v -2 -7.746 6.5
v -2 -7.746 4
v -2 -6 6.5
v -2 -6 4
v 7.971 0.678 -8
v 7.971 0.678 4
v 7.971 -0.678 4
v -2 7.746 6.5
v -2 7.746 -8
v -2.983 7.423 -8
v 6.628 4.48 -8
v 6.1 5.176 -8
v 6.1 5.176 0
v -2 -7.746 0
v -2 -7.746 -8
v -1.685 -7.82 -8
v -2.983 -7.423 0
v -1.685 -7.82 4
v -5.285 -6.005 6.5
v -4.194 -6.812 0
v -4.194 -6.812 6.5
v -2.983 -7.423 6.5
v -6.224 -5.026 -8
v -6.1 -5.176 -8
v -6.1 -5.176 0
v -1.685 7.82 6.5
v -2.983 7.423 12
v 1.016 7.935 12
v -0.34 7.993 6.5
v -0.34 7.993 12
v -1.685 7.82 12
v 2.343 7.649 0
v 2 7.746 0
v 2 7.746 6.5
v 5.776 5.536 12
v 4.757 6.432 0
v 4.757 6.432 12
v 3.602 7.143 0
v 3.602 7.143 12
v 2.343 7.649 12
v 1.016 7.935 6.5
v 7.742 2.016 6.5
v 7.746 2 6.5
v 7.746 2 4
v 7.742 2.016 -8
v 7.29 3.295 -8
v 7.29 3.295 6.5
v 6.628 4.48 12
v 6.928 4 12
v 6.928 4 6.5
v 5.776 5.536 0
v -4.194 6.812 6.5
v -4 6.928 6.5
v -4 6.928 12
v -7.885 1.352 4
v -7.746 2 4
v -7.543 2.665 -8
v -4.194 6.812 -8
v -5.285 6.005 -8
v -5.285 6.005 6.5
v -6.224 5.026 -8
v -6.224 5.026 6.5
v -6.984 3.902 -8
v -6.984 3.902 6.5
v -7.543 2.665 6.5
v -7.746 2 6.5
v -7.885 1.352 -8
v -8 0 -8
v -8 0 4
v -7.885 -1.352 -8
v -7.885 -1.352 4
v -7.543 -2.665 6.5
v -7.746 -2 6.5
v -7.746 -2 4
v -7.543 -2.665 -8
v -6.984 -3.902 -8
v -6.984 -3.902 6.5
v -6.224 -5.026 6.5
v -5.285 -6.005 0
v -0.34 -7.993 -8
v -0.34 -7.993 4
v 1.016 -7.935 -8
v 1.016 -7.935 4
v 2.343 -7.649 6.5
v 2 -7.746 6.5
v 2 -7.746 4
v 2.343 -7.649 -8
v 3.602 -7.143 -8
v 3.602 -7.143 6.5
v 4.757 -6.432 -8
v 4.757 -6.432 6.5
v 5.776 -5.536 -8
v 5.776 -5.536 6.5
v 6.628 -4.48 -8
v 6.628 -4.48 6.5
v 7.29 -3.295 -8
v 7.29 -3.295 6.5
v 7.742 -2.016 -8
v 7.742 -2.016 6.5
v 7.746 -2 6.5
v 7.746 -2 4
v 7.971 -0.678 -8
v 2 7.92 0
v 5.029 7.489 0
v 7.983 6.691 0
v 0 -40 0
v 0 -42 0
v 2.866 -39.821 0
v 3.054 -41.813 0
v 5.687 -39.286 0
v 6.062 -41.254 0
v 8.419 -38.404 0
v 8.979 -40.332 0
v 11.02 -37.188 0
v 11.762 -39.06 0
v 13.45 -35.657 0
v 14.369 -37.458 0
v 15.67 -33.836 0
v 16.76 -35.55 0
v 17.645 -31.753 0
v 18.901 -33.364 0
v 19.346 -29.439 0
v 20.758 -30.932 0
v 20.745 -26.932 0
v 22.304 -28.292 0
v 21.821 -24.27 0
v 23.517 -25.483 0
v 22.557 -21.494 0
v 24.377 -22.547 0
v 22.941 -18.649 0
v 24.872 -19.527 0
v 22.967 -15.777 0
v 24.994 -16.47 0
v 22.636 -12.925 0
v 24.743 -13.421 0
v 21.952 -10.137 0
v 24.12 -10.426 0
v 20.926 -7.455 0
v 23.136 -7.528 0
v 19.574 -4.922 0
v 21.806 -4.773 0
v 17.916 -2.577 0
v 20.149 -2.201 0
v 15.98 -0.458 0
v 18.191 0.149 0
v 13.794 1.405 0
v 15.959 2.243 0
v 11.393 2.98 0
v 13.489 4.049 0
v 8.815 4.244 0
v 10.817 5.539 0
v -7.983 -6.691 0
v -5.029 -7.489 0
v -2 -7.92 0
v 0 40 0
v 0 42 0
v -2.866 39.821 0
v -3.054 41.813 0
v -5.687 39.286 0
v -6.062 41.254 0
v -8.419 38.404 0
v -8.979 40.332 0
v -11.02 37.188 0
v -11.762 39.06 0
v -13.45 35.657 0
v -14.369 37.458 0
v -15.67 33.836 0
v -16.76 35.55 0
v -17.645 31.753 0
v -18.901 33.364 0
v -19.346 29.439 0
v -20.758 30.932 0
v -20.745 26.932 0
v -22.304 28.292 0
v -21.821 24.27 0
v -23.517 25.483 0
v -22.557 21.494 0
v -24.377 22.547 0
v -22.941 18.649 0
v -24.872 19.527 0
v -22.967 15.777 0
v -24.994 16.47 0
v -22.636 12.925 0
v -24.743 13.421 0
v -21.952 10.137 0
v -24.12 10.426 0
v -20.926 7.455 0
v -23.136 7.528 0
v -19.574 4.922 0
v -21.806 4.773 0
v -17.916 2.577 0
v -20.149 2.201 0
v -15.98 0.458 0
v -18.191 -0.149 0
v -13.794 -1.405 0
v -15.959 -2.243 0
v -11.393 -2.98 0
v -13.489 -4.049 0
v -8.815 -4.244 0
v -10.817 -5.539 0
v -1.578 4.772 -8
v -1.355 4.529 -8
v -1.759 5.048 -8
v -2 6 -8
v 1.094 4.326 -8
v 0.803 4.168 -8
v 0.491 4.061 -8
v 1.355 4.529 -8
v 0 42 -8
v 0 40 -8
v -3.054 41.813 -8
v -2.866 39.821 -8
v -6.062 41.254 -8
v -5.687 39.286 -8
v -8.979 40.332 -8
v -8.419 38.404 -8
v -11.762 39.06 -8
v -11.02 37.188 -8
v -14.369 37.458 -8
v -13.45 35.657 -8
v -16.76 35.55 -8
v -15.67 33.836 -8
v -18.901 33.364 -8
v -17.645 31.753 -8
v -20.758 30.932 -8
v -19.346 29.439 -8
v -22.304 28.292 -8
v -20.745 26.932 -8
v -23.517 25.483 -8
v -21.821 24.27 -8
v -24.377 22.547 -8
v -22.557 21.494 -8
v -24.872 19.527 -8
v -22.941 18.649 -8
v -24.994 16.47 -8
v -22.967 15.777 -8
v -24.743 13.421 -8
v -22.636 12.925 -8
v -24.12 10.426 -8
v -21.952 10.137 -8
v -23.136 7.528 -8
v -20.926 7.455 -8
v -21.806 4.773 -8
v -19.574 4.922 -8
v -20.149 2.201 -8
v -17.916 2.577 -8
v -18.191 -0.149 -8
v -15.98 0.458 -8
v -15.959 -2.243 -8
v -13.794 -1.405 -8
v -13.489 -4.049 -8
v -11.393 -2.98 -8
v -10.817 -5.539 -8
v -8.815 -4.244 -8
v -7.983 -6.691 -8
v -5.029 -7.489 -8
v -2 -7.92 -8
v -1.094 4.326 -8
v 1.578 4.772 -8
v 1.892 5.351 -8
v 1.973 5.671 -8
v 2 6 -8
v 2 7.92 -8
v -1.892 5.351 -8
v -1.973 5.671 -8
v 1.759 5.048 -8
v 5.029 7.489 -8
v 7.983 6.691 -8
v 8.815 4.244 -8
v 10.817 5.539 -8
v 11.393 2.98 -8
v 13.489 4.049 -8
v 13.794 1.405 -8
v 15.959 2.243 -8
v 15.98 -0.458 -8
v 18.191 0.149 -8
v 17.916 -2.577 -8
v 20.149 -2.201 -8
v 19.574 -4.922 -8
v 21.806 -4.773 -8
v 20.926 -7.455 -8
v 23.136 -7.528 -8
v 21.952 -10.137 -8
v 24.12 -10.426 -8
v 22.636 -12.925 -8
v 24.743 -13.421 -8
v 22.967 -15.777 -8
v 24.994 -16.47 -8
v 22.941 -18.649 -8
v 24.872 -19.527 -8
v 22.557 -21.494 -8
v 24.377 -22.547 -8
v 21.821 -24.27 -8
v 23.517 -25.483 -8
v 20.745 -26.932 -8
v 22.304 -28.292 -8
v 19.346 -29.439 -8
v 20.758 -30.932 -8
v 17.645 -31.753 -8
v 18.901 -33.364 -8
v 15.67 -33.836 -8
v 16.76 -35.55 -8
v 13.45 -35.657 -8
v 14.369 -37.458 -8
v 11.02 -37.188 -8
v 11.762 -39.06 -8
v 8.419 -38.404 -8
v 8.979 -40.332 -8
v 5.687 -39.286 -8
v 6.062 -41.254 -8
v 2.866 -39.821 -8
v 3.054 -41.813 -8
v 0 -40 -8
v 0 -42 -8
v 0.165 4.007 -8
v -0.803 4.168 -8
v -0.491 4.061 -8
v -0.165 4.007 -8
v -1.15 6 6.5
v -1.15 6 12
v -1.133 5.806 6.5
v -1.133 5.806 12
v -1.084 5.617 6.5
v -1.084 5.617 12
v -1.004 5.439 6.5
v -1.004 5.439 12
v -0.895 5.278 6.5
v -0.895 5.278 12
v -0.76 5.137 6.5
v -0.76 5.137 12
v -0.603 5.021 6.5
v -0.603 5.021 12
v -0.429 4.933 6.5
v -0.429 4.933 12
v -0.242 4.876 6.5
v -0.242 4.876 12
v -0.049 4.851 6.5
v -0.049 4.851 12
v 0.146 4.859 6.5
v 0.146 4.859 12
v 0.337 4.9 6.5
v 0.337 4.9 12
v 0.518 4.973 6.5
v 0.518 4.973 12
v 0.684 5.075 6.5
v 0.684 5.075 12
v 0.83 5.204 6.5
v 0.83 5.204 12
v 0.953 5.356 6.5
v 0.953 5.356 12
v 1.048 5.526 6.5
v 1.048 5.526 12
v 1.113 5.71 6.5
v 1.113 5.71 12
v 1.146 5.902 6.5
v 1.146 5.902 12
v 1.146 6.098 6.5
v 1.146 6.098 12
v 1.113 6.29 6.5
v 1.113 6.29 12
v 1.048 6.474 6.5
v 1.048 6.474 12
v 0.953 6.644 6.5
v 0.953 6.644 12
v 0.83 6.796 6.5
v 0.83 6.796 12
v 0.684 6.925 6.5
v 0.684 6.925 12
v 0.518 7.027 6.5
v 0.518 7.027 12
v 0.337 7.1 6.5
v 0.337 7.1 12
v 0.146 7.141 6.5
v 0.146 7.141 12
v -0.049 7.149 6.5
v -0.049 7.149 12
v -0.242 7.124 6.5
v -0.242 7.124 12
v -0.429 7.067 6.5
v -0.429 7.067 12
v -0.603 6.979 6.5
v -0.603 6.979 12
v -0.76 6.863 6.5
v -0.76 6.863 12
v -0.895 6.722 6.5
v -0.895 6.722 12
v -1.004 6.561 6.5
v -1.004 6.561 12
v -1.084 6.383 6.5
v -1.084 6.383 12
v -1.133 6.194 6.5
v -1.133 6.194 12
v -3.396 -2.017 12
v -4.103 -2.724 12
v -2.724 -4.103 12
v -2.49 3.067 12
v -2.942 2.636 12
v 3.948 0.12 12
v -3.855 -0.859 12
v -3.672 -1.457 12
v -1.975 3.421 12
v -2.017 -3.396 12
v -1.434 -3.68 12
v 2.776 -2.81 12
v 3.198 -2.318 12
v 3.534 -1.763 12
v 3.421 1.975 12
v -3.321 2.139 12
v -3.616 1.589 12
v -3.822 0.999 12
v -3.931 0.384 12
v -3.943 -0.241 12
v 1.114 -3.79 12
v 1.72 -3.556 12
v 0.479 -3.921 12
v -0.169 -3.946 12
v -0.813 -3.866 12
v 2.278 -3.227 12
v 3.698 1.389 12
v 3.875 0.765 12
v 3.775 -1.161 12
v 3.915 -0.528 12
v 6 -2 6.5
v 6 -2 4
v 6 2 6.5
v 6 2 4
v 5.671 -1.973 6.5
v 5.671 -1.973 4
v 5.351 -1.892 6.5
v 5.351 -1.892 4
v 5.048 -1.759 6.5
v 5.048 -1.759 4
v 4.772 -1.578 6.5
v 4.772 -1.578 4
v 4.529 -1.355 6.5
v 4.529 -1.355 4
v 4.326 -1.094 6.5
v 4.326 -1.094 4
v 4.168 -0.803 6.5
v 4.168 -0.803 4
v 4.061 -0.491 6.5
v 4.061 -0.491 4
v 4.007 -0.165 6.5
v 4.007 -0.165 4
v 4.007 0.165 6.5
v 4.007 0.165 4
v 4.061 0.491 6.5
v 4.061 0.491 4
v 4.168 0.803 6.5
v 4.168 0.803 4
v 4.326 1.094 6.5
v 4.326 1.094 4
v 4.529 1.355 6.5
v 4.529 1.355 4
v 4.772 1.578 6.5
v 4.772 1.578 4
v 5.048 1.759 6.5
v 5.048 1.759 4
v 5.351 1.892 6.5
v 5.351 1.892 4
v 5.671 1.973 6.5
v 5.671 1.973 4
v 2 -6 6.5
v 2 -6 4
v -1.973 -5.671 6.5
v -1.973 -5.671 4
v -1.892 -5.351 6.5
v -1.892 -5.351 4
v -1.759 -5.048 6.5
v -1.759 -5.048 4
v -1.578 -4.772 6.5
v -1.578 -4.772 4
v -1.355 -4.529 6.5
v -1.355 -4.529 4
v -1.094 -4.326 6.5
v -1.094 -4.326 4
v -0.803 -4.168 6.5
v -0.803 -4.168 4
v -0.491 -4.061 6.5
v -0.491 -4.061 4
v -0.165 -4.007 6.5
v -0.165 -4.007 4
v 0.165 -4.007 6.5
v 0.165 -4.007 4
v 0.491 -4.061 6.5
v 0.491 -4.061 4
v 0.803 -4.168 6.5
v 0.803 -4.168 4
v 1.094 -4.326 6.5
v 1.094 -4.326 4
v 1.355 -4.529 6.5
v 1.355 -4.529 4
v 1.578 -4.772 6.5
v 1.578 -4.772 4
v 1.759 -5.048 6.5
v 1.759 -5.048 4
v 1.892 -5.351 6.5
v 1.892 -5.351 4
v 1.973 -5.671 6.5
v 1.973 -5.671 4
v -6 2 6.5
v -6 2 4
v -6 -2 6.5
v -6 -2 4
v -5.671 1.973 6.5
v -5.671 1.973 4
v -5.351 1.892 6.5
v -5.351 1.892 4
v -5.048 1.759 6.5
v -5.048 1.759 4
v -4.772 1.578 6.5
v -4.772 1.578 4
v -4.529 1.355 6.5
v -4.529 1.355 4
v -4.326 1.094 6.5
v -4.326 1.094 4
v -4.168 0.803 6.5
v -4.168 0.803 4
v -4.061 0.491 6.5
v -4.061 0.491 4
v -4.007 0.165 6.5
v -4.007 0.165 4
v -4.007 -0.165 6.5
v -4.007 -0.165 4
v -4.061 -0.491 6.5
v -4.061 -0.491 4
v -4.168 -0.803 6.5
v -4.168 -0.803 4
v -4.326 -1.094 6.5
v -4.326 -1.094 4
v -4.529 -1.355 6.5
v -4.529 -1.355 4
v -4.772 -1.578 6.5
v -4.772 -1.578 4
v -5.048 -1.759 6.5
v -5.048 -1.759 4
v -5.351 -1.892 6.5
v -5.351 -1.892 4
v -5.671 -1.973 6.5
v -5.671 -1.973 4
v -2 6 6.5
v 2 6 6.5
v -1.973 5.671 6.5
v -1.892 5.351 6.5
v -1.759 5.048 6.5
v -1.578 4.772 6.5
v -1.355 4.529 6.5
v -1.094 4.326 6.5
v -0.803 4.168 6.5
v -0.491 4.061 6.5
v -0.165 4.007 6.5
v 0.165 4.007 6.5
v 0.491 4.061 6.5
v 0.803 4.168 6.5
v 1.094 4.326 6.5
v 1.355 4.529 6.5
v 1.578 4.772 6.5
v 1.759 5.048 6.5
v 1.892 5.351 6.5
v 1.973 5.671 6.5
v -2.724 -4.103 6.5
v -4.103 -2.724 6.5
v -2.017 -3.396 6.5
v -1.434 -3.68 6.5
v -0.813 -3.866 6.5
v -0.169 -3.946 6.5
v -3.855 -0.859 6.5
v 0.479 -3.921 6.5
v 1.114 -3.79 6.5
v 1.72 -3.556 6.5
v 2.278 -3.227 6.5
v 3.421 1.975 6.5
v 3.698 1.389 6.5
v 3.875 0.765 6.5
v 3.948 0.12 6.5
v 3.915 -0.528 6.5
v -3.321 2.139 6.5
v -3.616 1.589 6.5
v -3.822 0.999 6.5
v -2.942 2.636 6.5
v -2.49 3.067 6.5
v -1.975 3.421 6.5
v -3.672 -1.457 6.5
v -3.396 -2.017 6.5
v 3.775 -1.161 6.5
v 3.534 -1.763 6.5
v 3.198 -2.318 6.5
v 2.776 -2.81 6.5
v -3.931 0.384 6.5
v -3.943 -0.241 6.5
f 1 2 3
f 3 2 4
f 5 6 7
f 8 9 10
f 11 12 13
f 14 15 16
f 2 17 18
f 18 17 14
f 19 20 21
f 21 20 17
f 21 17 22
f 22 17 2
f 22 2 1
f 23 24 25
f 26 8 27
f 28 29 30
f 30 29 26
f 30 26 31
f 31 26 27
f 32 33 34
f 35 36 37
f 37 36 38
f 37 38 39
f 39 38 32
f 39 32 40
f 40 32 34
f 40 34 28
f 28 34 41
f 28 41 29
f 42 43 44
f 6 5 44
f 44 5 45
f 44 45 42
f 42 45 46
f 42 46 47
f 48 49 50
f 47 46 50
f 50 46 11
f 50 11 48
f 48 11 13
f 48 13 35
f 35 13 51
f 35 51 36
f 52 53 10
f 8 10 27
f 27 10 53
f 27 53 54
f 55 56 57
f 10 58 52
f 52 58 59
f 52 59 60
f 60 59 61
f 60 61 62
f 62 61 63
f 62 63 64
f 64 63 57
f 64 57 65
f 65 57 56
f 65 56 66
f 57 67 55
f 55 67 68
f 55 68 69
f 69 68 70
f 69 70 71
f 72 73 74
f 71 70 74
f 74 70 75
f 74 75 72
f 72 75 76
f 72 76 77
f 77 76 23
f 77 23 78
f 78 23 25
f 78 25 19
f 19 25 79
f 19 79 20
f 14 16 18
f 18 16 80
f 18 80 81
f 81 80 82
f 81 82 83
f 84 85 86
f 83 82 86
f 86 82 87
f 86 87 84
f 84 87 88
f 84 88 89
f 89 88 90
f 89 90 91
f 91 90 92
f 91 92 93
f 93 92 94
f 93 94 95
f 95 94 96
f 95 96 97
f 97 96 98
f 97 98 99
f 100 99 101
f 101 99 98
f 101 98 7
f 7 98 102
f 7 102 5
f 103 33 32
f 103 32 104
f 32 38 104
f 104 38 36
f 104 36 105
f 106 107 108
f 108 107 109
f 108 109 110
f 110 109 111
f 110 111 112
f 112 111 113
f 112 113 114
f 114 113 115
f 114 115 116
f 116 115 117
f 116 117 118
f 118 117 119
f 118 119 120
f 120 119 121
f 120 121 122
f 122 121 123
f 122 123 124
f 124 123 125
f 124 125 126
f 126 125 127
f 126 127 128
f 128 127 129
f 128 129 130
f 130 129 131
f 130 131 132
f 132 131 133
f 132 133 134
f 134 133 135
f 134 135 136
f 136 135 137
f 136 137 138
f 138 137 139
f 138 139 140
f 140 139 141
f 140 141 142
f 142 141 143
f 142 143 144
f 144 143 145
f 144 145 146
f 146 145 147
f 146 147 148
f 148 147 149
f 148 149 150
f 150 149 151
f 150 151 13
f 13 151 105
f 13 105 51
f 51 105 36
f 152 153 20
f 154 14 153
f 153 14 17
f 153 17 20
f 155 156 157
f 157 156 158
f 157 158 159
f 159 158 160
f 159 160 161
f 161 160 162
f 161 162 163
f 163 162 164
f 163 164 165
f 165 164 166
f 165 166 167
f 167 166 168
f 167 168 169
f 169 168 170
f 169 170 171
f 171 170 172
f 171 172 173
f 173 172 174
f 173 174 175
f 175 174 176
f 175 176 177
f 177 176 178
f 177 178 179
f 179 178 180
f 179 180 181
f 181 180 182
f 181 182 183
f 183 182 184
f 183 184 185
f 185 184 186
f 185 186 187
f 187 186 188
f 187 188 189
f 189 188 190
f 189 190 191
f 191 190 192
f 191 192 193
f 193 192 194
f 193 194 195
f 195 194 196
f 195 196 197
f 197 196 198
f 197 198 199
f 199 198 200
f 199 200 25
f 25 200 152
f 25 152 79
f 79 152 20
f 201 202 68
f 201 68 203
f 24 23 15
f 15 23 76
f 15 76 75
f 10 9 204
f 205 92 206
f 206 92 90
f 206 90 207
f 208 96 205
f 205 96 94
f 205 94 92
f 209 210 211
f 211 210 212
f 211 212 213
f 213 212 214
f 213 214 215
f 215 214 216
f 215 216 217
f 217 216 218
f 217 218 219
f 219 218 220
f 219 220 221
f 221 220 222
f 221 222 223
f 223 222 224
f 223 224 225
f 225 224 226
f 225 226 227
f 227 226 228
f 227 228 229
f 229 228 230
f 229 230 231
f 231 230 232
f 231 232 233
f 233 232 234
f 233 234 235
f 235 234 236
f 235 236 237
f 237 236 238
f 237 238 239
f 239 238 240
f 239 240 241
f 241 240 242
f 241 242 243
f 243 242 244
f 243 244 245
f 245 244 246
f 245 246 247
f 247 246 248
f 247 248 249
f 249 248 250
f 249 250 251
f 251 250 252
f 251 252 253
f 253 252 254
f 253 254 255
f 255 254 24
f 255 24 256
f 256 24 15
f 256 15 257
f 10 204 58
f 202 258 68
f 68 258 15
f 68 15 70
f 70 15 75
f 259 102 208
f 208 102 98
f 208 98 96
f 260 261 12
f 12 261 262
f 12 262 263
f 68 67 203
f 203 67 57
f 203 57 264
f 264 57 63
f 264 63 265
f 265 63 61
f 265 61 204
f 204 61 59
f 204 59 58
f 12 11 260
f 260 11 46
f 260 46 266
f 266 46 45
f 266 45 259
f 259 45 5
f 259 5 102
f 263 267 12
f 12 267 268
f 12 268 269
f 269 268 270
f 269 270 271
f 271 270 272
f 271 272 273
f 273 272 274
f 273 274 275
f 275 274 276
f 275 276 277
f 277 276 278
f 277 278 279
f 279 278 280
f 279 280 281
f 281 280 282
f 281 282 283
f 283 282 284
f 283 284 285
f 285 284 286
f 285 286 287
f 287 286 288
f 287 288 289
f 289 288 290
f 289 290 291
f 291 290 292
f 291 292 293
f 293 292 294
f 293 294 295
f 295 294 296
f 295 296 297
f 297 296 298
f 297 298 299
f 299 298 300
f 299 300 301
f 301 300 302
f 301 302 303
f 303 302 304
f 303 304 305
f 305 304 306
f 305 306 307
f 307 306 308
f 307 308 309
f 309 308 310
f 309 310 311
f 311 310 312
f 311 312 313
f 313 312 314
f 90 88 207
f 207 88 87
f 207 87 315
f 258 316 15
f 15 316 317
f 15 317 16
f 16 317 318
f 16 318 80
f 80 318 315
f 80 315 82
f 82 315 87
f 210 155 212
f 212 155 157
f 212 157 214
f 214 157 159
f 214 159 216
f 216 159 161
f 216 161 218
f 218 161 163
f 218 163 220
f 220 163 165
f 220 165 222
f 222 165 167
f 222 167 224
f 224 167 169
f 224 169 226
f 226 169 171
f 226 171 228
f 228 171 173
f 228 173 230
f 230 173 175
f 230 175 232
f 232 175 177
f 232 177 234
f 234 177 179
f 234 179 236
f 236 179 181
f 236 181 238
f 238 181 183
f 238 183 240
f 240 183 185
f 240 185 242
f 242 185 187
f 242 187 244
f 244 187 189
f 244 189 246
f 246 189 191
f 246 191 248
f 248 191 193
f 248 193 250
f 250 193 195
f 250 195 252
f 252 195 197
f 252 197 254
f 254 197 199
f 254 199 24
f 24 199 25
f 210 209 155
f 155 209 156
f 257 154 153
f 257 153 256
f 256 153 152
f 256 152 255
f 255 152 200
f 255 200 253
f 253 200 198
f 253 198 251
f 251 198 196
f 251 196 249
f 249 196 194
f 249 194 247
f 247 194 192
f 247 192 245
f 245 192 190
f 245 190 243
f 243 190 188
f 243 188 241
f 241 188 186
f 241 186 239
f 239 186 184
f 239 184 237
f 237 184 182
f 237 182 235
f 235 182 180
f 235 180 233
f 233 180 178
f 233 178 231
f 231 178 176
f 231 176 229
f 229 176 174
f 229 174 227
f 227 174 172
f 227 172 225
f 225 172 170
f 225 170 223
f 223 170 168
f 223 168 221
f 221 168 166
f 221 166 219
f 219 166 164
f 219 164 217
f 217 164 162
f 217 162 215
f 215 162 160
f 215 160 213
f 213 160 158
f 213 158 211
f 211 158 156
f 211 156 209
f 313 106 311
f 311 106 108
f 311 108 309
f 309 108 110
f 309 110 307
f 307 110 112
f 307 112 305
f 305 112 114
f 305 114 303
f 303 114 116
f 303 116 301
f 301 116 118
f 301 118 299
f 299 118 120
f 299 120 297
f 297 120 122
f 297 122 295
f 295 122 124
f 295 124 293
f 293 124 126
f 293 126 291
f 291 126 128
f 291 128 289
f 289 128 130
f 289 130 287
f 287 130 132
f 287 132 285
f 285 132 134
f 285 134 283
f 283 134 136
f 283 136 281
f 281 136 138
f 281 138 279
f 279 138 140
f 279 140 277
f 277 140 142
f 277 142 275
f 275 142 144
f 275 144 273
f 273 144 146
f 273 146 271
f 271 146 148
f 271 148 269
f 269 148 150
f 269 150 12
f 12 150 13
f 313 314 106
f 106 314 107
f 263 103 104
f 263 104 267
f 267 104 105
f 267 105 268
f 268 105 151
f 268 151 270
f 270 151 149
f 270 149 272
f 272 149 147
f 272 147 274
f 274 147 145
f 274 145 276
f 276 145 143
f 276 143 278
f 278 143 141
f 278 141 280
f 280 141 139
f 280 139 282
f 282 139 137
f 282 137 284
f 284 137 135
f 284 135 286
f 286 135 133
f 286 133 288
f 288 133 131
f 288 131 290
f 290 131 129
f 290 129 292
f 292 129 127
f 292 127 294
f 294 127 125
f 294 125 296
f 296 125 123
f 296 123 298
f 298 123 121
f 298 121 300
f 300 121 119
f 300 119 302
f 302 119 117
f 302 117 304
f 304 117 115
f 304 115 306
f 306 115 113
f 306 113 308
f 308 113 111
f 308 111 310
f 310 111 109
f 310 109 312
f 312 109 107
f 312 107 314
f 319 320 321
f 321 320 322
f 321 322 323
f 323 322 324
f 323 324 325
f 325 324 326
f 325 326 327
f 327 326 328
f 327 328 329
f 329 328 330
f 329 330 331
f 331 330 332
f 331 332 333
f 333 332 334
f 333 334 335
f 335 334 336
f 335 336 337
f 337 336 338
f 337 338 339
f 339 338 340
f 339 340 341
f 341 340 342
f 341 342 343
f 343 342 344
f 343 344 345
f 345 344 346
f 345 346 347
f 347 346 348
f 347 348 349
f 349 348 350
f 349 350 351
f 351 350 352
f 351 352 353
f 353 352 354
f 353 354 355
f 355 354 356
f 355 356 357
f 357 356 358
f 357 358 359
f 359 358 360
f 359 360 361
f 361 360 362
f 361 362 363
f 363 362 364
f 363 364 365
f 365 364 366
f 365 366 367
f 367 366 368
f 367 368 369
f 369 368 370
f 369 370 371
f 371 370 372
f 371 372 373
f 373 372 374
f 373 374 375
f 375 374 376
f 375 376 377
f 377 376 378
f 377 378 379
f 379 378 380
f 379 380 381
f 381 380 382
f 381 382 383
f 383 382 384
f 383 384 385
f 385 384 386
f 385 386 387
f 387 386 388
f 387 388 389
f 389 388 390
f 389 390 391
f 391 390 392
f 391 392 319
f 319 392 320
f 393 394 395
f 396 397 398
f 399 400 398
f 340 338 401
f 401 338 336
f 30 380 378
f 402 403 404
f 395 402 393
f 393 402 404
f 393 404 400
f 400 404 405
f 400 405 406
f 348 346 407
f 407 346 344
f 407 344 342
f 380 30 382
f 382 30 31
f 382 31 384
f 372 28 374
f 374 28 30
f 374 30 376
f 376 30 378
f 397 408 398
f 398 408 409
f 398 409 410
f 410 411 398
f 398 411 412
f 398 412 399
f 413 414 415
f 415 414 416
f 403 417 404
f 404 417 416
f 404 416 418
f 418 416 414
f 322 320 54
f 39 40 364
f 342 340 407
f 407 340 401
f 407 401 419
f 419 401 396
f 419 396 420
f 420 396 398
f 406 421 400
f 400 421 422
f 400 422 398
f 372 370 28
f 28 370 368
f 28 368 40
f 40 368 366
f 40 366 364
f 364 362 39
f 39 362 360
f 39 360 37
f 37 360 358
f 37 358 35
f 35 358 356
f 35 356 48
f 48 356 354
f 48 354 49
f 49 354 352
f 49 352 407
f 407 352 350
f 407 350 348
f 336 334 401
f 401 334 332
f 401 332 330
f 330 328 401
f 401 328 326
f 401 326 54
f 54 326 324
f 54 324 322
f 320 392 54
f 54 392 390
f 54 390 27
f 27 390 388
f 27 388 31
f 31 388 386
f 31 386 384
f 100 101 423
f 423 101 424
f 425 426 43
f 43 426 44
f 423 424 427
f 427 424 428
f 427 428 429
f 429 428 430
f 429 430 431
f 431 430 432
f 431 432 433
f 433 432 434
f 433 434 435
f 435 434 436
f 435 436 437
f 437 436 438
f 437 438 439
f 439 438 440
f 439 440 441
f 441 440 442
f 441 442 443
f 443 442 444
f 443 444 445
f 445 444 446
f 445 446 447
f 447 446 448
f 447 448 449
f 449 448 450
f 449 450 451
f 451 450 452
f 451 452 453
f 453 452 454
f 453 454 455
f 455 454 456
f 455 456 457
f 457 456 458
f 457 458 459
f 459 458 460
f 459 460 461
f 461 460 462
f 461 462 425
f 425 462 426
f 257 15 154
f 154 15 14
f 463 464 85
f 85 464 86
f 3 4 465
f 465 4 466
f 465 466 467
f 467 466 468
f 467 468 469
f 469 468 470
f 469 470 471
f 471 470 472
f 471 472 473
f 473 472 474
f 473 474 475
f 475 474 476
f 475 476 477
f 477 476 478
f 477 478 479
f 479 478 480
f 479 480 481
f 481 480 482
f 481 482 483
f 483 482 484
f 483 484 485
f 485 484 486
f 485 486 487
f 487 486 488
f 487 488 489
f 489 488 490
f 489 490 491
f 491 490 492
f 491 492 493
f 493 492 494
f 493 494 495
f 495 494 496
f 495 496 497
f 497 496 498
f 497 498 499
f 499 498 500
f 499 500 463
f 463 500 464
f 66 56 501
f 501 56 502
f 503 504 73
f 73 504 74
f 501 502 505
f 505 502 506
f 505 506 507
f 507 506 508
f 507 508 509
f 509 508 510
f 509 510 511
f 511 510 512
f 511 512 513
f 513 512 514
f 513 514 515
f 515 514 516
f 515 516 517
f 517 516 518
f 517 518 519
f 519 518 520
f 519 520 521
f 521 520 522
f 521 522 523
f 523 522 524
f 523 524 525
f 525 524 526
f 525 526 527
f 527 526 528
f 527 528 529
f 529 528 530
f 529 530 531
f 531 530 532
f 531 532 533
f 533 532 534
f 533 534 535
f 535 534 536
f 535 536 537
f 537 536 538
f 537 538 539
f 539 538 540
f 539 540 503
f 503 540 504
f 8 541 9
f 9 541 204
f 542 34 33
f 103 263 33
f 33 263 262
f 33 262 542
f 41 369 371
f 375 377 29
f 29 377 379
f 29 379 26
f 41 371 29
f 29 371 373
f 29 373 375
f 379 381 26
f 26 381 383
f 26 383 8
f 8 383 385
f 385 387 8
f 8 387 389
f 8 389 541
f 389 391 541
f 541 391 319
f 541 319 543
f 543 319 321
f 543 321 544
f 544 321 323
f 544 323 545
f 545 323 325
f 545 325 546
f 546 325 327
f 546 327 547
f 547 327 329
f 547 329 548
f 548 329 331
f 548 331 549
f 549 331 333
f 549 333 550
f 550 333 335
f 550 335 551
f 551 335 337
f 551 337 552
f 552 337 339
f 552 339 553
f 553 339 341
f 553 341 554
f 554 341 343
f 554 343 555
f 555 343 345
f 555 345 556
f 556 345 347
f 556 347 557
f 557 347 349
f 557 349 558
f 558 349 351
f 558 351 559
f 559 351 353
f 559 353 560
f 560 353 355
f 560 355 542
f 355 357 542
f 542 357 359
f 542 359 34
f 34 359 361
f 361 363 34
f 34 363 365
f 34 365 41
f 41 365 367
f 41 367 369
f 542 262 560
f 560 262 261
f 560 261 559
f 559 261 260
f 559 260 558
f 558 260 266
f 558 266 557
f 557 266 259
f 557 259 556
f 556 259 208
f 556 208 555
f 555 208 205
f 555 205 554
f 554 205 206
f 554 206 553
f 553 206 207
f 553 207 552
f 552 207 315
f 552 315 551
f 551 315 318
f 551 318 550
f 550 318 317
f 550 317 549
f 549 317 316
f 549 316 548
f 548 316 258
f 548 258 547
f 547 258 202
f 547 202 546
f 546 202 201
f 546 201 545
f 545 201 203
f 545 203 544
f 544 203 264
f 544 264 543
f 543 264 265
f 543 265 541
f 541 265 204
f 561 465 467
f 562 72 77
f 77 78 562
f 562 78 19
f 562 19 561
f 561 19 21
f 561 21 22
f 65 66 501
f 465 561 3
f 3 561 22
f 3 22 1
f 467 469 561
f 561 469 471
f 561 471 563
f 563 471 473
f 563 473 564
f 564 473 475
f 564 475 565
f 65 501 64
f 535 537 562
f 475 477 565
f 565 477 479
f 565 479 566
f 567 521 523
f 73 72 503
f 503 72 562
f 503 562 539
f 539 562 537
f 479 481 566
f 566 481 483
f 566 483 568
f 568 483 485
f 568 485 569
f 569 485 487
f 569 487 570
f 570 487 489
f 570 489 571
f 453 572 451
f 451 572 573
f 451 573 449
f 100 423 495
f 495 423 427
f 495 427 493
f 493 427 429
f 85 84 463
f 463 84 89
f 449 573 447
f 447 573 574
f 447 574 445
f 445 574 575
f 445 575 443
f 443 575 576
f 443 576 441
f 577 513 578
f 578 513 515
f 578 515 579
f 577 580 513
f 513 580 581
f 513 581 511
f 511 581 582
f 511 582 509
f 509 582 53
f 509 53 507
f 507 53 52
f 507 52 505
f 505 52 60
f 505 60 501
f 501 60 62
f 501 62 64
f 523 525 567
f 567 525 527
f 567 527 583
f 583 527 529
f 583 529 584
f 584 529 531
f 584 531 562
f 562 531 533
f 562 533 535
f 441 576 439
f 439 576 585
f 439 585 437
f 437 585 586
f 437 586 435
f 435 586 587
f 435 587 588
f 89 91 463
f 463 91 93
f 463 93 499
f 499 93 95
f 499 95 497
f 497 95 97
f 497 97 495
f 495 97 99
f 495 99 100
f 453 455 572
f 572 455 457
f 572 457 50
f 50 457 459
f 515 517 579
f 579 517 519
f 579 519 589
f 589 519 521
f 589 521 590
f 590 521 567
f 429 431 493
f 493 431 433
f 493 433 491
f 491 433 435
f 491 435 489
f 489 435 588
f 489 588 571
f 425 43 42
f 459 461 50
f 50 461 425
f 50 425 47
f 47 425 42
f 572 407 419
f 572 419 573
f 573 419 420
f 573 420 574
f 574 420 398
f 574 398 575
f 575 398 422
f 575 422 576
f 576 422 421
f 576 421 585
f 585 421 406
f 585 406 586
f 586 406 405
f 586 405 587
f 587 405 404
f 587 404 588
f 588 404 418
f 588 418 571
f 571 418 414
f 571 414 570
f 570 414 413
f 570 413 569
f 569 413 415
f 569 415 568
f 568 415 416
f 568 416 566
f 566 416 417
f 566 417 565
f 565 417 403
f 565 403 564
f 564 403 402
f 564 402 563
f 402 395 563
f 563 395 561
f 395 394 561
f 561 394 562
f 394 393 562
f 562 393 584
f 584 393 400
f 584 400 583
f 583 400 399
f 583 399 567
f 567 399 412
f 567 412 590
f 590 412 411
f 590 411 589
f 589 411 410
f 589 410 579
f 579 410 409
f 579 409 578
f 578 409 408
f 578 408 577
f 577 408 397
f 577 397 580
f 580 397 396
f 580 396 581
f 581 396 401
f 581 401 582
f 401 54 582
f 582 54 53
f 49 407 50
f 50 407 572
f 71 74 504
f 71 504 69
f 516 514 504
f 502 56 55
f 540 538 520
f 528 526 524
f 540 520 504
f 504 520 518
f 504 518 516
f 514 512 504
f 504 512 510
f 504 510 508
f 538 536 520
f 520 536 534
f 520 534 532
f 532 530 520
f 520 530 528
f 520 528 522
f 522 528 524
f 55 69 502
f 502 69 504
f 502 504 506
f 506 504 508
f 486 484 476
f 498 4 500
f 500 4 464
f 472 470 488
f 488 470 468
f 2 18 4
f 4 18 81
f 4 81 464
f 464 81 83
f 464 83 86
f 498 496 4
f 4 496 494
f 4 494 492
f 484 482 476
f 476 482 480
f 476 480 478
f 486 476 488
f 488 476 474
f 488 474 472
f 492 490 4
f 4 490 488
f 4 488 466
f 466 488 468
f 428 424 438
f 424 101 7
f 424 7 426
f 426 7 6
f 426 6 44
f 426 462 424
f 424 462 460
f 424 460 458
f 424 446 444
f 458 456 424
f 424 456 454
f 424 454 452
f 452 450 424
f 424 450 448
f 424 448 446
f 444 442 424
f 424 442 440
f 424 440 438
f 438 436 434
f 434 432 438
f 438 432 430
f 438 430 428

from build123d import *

# Parameters (mm, degrees)
LEG_SKETCH_R      = 1.15
LEG_DEPTH         = 8
HUB_SKETCH_R      = 8
HUB_SKETCH_R_2    = 1.15
HUB_DEPTH         = 12
CLEARANCE_DEPTH   = 14.5
HUB_CUTOUT_DEPTH  = 5.5
COVER_BOLTS_DEPTH = 12


with BuildPart() as part:
    # Leg-Sketch → Leg (new body)
    with BuildSketch(Plane.XY):
        with BuildLine():
            Line((0, -42), (0, -40))
            ThreePointArc((0, -40), (22.793187837, -20.077432085), (6.099520657, 5.176470588))
            ThreePointArc((6.099520657, 5.176470588), (7.259881704, -3.360672202), (0, -8))
            ThreePointArc((0, -8), (-25, 17), (0, 42))
            Line((0, 42), (0, 40))
            ThreePointArc((0, 40), (-22.793187837, 20.077432085), (-6.099520657, -5.176470588))
            ThreePointArc((-6.099520657, -5.176470588), (-7.259881704, 3.360672202), (0, 8))
            ThreePointArc((0, 8), (25, -17), (0, -42))
        make_face()
        with Locations((0, 6)):
            Circle(LEG_SKETCH_R, mode=Mode.SUBTRACT)
        with Locations((-6, 0)):
            Circle(LEG_SKETCH_R, mode=Mode.SUBTRACT)
        with Locations((0, -6)):
            Circle(LEG_SKETCH_R, mode=Mode.SUBTRACT)
        with Locations((6, 0)):
            Circle(LEG_SKETCH_R, mode=Mode.SUBTRACT)
    extrude(amount=LEG_DEPTH)

    # Hub-Sketch → Hub (add)
    with BuildSketch(Plane(origin=(0, 0, 0), x_dir=(-1, 0, 0), z_dir=(0, 0, -1))):
        Circle(HUB_SKETCH_R)
        with Locations((0, 6)):
            Circle(HUB_SKETCH_R_2, mode=Mode.SUBTRACT)
        with Locations((-6, 0)):
            Circle(HUB_SKETCH_R_2, mode=Mode.SUBTRACT)
        with Locations((0, -6)):
            Circle(HUB_SKETCH_R_2, mode=Mode.SUBTRACT)
        with Locations((6, 0)):
            Circle(HUB_SKETCH_R_2, mode=Mode.SUBTRACT)
    extrude(amount=HUB_DEPTH)

    # Clearance-Sketch → Clearance (cut)
    with BuildSketch(Plane.XY.offset(8)):
        with BuildLine():
            Line((6, 2), (8, 2))
            Line((8, 2), (8, -2))
            Line((8, -2), (6, -2))
            ThreePointArc((6, -2), (4, 0), (6, 2))
        make_face()
        with BuildLine():
            Line((2, -6), (2, -8))
            Line((2, -8), (-2, -8))
            Line((-2, -8), (-2, -6))
            ThreePointArc((-2, -6), (0, -4), (2, -6))
        make_face()
        with BuildLine():
            Line((-6, -2), (-8, -2))
            Line((-8, -2), (-8, 2))
            Line((-8, 2), (-6, 2))
            ThreePointArc((-6, 2), (-4, 0), (-6, -2))
        make_face()
        with BuildLine():
            Line((-2, 6), (-2, 8))
            Line((-2, 8), (2, 8))
            Line((2, 8), (2, 6))
            ThreePointArc((2, 6), (0, 4), (-2, 6))
        make_face()
    extrude(amount=-CLEARANCE_DEPTH, mode=Mode.SUBTRACT)

    # Hub-Cutout-Sketch → Hub-Cutout (cut)
    with BuildSketch(Plane(origin=(0, 0, -12), x_dir=(-1, 0, 0), z_dir=(0, 0, -1))):
        with BuildLine():
            Line((-3.420800345, 1.975), (-6.92820323, 4))
            ThreePointArc((-6.92820323, 4), (2.070552361, -7.72740661), (4, 6.92820323))
            Line((4, 6.92820323), (1.975, 3.420800345))
            ThreePointArc((1.975, 3.420800345), (3.821665179, 0.998686766), (3.396076023, -2.017217799))
            Line((3.396076023, -2.017217799), (4.103182804, -2.72432458))
            Line((4.103182804, -2.72432458), (2.72432458, -4.103182804))
            Line((2.72432458, -4.103182804), (2.017217799, -3.396076023))
            ThreePointArc((2.017217799, -3.396076023), (-2.775720699, -2.810315747), (-3.420800345, 1.975))
        make_face()
    extrude(amount=-HUB_CUTOUT_DEPTH, mode=Mode.SUBTRACT)

    # Cover-Bolts-Sketch → Cover-Bolts (add)
    with BuildSketch(Plane.XY.offset(8)):
        with BuildLine():
            Line((5.656854249, 5.656854249), (0, 0))
            Line((0, 0), (-5.656854249, 5.656854249))
            ThreePointArc((-5.656854249, 5.656854249), (0, -8), (5.656854249, 5.656854249))
        make_face()
    extrude(amount=-COVER_BOLTS_DEPTH)


with BuildPart() as body_2:
    # Mirror 2: mirrored copy
    add(part.part.mirror(Plane.XY))


solid = body_2.part
